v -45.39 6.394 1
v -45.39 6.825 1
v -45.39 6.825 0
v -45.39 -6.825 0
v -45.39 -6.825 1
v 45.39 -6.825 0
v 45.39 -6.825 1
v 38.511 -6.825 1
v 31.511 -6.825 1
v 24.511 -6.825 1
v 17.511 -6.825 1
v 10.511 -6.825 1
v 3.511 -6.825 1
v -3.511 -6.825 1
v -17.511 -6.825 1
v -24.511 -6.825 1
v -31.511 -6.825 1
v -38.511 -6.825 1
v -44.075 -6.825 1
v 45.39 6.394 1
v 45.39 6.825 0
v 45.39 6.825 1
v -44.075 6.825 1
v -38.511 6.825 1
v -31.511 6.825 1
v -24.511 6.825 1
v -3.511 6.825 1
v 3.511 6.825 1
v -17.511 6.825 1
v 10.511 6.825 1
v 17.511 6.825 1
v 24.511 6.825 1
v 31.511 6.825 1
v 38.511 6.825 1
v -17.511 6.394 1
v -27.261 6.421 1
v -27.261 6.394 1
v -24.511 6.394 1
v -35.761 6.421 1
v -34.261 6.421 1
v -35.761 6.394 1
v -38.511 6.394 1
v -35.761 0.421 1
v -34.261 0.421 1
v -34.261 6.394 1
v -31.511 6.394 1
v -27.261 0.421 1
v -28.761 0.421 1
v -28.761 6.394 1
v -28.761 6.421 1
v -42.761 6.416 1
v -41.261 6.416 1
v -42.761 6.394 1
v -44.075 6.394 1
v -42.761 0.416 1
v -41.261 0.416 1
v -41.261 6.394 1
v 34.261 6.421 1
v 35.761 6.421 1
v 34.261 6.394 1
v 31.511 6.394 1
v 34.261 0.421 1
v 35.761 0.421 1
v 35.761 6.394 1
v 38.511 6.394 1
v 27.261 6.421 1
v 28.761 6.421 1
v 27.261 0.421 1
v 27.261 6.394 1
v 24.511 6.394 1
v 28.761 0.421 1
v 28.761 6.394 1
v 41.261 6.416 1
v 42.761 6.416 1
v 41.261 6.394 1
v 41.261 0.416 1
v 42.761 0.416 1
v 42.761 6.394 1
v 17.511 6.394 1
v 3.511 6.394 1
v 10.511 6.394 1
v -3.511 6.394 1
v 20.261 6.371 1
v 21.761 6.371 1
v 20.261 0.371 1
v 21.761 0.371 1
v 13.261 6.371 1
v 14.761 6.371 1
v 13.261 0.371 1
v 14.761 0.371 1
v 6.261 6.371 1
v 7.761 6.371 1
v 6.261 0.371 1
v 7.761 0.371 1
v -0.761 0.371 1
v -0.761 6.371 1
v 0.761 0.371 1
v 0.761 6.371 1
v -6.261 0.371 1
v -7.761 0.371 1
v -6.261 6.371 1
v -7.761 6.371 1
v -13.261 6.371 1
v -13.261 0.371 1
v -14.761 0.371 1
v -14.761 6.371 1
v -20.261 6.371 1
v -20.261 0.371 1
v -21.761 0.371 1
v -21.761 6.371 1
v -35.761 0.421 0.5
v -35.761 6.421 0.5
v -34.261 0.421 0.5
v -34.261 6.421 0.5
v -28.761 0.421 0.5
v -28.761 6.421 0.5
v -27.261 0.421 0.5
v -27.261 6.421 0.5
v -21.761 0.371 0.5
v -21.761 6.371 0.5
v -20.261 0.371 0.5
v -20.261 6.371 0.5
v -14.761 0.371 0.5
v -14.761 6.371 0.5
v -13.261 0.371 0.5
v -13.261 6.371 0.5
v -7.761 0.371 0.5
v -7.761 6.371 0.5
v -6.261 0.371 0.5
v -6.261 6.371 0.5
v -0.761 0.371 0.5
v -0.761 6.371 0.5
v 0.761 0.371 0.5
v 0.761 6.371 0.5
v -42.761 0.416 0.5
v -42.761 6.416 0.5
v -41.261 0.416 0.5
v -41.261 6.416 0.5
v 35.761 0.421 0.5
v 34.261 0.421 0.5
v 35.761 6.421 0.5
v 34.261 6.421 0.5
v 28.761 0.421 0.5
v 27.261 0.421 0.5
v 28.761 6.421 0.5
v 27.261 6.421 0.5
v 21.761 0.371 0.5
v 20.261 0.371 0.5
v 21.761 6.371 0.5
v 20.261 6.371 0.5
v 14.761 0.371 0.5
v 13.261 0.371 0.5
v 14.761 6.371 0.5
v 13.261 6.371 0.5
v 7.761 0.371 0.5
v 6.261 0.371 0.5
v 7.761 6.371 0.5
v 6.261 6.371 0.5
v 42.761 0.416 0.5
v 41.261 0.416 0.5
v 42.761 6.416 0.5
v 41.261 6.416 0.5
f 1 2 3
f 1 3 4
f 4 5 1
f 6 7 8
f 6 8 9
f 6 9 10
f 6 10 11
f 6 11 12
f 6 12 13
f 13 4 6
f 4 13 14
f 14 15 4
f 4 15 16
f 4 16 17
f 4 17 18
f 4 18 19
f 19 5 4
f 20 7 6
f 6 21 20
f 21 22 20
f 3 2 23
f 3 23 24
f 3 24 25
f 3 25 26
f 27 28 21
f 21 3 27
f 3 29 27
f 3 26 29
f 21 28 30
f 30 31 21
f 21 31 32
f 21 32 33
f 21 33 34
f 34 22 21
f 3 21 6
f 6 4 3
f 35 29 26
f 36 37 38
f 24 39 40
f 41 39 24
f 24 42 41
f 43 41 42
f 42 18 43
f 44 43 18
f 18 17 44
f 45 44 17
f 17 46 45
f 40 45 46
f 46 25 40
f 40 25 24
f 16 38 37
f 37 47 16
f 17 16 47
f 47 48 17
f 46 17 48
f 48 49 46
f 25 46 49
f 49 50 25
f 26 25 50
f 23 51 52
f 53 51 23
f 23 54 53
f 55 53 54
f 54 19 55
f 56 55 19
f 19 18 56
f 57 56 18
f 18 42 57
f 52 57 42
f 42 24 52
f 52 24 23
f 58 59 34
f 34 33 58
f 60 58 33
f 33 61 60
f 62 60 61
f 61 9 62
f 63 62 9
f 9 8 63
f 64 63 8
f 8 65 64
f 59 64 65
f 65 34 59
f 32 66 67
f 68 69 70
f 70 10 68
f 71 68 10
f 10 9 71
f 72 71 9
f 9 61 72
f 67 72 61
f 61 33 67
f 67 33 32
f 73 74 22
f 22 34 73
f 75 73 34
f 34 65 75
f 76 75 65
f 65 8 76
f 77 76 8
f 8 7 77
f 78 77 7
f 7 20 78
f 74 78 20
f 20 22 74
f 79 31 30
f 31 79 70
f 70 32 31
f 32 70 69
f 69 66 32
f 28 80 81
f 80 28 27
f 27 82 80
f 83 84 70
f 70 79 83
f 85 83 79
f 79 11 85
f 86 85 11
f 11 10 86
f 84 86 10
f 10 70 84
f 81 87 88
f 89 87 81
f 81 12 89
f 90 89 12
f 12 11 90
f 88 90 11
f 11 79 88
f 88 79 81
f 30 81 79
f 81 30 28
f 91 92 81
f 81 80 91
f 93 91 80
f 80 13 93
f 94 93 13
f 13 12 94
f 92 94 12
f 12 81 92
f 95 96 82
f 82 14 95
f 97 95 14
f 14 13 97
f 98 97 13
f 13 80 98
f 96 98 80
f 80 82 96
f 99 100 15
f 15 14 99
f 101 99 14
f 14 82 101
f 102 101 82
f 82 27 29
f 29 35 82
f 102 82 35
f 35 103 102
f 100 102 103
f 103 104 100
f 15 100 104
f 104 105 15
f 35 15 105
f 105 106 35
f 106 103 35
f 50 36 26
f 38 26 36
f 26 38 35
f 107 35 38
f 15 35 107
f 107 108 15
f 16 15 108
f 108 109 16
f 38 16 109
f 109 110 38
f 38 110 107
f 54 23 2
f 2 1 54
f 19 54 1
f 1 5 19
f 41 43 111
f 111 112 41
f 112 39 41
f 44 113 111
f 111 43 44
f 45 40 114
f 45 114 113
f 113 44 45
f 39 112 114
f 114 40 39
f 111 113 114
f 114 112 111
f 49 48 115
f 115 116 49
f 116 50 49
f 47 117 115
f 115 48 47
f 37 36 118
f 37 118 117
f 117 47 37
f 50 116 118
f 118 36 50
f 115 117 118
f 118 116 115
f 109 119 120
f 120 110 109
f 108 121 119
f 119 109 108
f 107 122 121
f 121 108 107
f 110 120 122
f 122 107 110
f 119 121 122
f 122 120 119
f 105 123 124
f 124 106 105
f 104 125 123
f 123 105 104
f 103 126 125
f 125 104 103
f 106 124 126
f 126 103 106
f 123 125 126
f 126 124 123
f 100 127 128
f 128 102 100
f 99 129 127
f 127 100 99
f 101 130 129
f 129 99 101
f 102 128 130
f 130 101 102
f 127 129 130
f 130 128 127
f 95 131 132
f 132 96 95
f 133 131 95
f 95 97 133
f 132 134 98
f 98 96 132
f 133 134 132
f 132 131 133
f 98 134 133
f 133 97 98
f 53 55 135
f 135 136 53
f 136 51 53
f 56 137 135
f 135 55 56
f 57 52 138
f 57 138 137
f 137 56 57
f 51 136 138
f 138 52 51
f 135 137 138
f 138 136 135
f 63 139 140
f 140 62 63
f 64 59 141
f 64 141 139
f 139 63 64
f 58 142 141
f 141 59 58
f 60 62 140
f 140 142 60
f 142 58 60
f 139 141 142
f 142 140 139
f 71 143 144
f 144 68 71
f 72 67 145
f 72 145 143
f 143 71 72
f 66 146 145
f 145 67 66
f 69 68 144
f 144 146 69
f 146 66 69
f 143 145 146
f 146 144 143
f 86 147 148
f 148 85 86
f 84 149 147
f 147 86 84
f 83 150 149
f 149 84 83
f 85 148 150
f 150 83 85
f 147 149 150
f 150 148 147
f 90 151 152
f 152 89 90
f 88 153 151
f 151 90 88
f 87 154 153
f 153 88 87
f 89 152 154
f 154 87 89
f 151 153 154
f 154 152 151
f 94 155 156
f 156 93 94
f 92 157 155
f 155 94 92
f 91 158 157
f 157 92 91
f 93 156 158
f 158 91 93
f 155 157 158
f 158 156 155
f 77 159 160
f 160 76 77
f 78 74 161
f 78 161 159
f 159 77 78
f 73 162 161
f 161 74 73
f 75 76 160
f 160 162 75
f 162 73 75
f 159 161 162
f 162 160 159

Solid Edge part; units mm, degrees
sketch "Sketch1" plane through (0, 0, 0) normal (0, 0, 1) x (1, 0, 0)
  line L0 (-45.39, -6.825) -> (45.39, -6.825)
  line L1 (45.39, -6.825) -> (45.39, 6.825)
  line L2 (45.39, 6.825) -> (-45.39, 6.825)
  line L3 (-45.39, 6.825) -> (-45.39, -6.825)
  dimension "D1" = 90.78
  dimension "D2" = 13.65
extrude "Protrusion1" add sketch "Sketch1" along normal blind 1
sketch "Sketch2" plane through (0, 0, 1) normal (0, 0, 1) x (1, 0, 0)
  line L0 (-35.761, 0.4214) -> (-34.261, 0.4214)
  line L1 (-34.261, 0.4214) -> (-34.261, 6.4214)
  line L2 (-34.261, 6.4214) -> (-35.761, 6.4214)
  line L3 (-35.761, 6.4214) -> (-35.761, 0.4214)
  line L4 (-28.761, 0.4214) -> (-27.261, 0.4214)
  line L5 (-27.261, 0.4214) -> (-27.261, 6.4214)
  line L6 (-27.261, 6.4214) -> (-28.761, 6.4214)
  line L7 (-28.761, 6.4214) -> (-28.761, 0.4214)
  line L8 (-21.761, 0.3715) -> (-20.261, 0.3715)
  line L9 (-20.261, 0.3715) -> (-20.261, 6.3715)
  line L10 (-20.261, 6.3715) -> (-21.761, 6.3715)
  line L11 (-21.761, 6.3715) -> (-21.761, 0.3715)
  line L12 (-14.761, 0.3715) -> (-13.261, 0.3715)
  line L13 (-13.261, 0.3715) -> (-13.261, 6.3715)
  line L14 (-13.261, 6.3715) -> (-14.761, 6.3715)
  line L15 (-14.761, 6.3715) -> (-14.761, 0.3715)
  line L16 (-7.7611, 0.3715) -> (-6.2611, 0.3715)
  line L17 (-6.2611, 0.3715) -> (-6.2611, 6.3715)
  line L18 (-6.2611, 6.3715) -> (-7.7611, 6.3715)
  line L19 (-7.7611, 6.3715) -> (-7.7611, 0.3715)
  line L20 (-0.761, 0.3715) -> (0.739, 0.3715)
  line L21 (0.739, 0.3715) -> (0.739, 6.3715)
  line L22 (0.739, 6.3715) -> (-0.761, 6.3715)
  line L23 (-0.761, 6.3715) -> (-0.761, 0.3715)
  line L24 (-42.761, 0.4164) -> (-41.261, 0.4164)
  line L25 (-41.261, 0.4164) -> (-41.261, 6.4164)
  line L26 (-41.261, 6.4164) -> (-42.761, 6.4164)
  line L27 (-42.761, 6.4164) -> (-42.761, 0.4164)
  dimension "D1" = 1.5
  dimension "D2" = 6
  dimension "D3" = 0.75
  dimension "D4" = 1.075
  dimension "D5" = 1.0751
  dimension "D6" = 0.75
  dimension "D7" = 1.5
  dimension "D8" = 6
  dimension "D9" = 1.5
  dimension "D10" = 6
  dimension "D11" = 1.5
  dimension "D12" = 6
  dimension "D13" = 1.5
  dimension "D14" = 6
  dimension "D15" = 1.5
  dimension "D16" = 6
  dimension "D17" = 1.5
  dimension "D18" = 6
  dimension "D19" = 0.75
  dimension "D20" = 1.08
  dimension "D21" = 1.08
  dimension "D22" = 1.08
  dimension "D23" = 1.08
  dimension "D24" = 1.08
  dimension "D25" = 1.08
  dimension "D26" = 0.75
  dimension "D27" = 0.75
  dimension "D28" = 0.75
  dimension "D29" = 0.75
  dimension "D30" = 0.75
extrude "Cutout1" cut sketch "Sketch2" against normal blind 0.5
mirror "Mirror1" about plane through (0, 0, 0) normal (1, 0, 0) of "Cutout1"
